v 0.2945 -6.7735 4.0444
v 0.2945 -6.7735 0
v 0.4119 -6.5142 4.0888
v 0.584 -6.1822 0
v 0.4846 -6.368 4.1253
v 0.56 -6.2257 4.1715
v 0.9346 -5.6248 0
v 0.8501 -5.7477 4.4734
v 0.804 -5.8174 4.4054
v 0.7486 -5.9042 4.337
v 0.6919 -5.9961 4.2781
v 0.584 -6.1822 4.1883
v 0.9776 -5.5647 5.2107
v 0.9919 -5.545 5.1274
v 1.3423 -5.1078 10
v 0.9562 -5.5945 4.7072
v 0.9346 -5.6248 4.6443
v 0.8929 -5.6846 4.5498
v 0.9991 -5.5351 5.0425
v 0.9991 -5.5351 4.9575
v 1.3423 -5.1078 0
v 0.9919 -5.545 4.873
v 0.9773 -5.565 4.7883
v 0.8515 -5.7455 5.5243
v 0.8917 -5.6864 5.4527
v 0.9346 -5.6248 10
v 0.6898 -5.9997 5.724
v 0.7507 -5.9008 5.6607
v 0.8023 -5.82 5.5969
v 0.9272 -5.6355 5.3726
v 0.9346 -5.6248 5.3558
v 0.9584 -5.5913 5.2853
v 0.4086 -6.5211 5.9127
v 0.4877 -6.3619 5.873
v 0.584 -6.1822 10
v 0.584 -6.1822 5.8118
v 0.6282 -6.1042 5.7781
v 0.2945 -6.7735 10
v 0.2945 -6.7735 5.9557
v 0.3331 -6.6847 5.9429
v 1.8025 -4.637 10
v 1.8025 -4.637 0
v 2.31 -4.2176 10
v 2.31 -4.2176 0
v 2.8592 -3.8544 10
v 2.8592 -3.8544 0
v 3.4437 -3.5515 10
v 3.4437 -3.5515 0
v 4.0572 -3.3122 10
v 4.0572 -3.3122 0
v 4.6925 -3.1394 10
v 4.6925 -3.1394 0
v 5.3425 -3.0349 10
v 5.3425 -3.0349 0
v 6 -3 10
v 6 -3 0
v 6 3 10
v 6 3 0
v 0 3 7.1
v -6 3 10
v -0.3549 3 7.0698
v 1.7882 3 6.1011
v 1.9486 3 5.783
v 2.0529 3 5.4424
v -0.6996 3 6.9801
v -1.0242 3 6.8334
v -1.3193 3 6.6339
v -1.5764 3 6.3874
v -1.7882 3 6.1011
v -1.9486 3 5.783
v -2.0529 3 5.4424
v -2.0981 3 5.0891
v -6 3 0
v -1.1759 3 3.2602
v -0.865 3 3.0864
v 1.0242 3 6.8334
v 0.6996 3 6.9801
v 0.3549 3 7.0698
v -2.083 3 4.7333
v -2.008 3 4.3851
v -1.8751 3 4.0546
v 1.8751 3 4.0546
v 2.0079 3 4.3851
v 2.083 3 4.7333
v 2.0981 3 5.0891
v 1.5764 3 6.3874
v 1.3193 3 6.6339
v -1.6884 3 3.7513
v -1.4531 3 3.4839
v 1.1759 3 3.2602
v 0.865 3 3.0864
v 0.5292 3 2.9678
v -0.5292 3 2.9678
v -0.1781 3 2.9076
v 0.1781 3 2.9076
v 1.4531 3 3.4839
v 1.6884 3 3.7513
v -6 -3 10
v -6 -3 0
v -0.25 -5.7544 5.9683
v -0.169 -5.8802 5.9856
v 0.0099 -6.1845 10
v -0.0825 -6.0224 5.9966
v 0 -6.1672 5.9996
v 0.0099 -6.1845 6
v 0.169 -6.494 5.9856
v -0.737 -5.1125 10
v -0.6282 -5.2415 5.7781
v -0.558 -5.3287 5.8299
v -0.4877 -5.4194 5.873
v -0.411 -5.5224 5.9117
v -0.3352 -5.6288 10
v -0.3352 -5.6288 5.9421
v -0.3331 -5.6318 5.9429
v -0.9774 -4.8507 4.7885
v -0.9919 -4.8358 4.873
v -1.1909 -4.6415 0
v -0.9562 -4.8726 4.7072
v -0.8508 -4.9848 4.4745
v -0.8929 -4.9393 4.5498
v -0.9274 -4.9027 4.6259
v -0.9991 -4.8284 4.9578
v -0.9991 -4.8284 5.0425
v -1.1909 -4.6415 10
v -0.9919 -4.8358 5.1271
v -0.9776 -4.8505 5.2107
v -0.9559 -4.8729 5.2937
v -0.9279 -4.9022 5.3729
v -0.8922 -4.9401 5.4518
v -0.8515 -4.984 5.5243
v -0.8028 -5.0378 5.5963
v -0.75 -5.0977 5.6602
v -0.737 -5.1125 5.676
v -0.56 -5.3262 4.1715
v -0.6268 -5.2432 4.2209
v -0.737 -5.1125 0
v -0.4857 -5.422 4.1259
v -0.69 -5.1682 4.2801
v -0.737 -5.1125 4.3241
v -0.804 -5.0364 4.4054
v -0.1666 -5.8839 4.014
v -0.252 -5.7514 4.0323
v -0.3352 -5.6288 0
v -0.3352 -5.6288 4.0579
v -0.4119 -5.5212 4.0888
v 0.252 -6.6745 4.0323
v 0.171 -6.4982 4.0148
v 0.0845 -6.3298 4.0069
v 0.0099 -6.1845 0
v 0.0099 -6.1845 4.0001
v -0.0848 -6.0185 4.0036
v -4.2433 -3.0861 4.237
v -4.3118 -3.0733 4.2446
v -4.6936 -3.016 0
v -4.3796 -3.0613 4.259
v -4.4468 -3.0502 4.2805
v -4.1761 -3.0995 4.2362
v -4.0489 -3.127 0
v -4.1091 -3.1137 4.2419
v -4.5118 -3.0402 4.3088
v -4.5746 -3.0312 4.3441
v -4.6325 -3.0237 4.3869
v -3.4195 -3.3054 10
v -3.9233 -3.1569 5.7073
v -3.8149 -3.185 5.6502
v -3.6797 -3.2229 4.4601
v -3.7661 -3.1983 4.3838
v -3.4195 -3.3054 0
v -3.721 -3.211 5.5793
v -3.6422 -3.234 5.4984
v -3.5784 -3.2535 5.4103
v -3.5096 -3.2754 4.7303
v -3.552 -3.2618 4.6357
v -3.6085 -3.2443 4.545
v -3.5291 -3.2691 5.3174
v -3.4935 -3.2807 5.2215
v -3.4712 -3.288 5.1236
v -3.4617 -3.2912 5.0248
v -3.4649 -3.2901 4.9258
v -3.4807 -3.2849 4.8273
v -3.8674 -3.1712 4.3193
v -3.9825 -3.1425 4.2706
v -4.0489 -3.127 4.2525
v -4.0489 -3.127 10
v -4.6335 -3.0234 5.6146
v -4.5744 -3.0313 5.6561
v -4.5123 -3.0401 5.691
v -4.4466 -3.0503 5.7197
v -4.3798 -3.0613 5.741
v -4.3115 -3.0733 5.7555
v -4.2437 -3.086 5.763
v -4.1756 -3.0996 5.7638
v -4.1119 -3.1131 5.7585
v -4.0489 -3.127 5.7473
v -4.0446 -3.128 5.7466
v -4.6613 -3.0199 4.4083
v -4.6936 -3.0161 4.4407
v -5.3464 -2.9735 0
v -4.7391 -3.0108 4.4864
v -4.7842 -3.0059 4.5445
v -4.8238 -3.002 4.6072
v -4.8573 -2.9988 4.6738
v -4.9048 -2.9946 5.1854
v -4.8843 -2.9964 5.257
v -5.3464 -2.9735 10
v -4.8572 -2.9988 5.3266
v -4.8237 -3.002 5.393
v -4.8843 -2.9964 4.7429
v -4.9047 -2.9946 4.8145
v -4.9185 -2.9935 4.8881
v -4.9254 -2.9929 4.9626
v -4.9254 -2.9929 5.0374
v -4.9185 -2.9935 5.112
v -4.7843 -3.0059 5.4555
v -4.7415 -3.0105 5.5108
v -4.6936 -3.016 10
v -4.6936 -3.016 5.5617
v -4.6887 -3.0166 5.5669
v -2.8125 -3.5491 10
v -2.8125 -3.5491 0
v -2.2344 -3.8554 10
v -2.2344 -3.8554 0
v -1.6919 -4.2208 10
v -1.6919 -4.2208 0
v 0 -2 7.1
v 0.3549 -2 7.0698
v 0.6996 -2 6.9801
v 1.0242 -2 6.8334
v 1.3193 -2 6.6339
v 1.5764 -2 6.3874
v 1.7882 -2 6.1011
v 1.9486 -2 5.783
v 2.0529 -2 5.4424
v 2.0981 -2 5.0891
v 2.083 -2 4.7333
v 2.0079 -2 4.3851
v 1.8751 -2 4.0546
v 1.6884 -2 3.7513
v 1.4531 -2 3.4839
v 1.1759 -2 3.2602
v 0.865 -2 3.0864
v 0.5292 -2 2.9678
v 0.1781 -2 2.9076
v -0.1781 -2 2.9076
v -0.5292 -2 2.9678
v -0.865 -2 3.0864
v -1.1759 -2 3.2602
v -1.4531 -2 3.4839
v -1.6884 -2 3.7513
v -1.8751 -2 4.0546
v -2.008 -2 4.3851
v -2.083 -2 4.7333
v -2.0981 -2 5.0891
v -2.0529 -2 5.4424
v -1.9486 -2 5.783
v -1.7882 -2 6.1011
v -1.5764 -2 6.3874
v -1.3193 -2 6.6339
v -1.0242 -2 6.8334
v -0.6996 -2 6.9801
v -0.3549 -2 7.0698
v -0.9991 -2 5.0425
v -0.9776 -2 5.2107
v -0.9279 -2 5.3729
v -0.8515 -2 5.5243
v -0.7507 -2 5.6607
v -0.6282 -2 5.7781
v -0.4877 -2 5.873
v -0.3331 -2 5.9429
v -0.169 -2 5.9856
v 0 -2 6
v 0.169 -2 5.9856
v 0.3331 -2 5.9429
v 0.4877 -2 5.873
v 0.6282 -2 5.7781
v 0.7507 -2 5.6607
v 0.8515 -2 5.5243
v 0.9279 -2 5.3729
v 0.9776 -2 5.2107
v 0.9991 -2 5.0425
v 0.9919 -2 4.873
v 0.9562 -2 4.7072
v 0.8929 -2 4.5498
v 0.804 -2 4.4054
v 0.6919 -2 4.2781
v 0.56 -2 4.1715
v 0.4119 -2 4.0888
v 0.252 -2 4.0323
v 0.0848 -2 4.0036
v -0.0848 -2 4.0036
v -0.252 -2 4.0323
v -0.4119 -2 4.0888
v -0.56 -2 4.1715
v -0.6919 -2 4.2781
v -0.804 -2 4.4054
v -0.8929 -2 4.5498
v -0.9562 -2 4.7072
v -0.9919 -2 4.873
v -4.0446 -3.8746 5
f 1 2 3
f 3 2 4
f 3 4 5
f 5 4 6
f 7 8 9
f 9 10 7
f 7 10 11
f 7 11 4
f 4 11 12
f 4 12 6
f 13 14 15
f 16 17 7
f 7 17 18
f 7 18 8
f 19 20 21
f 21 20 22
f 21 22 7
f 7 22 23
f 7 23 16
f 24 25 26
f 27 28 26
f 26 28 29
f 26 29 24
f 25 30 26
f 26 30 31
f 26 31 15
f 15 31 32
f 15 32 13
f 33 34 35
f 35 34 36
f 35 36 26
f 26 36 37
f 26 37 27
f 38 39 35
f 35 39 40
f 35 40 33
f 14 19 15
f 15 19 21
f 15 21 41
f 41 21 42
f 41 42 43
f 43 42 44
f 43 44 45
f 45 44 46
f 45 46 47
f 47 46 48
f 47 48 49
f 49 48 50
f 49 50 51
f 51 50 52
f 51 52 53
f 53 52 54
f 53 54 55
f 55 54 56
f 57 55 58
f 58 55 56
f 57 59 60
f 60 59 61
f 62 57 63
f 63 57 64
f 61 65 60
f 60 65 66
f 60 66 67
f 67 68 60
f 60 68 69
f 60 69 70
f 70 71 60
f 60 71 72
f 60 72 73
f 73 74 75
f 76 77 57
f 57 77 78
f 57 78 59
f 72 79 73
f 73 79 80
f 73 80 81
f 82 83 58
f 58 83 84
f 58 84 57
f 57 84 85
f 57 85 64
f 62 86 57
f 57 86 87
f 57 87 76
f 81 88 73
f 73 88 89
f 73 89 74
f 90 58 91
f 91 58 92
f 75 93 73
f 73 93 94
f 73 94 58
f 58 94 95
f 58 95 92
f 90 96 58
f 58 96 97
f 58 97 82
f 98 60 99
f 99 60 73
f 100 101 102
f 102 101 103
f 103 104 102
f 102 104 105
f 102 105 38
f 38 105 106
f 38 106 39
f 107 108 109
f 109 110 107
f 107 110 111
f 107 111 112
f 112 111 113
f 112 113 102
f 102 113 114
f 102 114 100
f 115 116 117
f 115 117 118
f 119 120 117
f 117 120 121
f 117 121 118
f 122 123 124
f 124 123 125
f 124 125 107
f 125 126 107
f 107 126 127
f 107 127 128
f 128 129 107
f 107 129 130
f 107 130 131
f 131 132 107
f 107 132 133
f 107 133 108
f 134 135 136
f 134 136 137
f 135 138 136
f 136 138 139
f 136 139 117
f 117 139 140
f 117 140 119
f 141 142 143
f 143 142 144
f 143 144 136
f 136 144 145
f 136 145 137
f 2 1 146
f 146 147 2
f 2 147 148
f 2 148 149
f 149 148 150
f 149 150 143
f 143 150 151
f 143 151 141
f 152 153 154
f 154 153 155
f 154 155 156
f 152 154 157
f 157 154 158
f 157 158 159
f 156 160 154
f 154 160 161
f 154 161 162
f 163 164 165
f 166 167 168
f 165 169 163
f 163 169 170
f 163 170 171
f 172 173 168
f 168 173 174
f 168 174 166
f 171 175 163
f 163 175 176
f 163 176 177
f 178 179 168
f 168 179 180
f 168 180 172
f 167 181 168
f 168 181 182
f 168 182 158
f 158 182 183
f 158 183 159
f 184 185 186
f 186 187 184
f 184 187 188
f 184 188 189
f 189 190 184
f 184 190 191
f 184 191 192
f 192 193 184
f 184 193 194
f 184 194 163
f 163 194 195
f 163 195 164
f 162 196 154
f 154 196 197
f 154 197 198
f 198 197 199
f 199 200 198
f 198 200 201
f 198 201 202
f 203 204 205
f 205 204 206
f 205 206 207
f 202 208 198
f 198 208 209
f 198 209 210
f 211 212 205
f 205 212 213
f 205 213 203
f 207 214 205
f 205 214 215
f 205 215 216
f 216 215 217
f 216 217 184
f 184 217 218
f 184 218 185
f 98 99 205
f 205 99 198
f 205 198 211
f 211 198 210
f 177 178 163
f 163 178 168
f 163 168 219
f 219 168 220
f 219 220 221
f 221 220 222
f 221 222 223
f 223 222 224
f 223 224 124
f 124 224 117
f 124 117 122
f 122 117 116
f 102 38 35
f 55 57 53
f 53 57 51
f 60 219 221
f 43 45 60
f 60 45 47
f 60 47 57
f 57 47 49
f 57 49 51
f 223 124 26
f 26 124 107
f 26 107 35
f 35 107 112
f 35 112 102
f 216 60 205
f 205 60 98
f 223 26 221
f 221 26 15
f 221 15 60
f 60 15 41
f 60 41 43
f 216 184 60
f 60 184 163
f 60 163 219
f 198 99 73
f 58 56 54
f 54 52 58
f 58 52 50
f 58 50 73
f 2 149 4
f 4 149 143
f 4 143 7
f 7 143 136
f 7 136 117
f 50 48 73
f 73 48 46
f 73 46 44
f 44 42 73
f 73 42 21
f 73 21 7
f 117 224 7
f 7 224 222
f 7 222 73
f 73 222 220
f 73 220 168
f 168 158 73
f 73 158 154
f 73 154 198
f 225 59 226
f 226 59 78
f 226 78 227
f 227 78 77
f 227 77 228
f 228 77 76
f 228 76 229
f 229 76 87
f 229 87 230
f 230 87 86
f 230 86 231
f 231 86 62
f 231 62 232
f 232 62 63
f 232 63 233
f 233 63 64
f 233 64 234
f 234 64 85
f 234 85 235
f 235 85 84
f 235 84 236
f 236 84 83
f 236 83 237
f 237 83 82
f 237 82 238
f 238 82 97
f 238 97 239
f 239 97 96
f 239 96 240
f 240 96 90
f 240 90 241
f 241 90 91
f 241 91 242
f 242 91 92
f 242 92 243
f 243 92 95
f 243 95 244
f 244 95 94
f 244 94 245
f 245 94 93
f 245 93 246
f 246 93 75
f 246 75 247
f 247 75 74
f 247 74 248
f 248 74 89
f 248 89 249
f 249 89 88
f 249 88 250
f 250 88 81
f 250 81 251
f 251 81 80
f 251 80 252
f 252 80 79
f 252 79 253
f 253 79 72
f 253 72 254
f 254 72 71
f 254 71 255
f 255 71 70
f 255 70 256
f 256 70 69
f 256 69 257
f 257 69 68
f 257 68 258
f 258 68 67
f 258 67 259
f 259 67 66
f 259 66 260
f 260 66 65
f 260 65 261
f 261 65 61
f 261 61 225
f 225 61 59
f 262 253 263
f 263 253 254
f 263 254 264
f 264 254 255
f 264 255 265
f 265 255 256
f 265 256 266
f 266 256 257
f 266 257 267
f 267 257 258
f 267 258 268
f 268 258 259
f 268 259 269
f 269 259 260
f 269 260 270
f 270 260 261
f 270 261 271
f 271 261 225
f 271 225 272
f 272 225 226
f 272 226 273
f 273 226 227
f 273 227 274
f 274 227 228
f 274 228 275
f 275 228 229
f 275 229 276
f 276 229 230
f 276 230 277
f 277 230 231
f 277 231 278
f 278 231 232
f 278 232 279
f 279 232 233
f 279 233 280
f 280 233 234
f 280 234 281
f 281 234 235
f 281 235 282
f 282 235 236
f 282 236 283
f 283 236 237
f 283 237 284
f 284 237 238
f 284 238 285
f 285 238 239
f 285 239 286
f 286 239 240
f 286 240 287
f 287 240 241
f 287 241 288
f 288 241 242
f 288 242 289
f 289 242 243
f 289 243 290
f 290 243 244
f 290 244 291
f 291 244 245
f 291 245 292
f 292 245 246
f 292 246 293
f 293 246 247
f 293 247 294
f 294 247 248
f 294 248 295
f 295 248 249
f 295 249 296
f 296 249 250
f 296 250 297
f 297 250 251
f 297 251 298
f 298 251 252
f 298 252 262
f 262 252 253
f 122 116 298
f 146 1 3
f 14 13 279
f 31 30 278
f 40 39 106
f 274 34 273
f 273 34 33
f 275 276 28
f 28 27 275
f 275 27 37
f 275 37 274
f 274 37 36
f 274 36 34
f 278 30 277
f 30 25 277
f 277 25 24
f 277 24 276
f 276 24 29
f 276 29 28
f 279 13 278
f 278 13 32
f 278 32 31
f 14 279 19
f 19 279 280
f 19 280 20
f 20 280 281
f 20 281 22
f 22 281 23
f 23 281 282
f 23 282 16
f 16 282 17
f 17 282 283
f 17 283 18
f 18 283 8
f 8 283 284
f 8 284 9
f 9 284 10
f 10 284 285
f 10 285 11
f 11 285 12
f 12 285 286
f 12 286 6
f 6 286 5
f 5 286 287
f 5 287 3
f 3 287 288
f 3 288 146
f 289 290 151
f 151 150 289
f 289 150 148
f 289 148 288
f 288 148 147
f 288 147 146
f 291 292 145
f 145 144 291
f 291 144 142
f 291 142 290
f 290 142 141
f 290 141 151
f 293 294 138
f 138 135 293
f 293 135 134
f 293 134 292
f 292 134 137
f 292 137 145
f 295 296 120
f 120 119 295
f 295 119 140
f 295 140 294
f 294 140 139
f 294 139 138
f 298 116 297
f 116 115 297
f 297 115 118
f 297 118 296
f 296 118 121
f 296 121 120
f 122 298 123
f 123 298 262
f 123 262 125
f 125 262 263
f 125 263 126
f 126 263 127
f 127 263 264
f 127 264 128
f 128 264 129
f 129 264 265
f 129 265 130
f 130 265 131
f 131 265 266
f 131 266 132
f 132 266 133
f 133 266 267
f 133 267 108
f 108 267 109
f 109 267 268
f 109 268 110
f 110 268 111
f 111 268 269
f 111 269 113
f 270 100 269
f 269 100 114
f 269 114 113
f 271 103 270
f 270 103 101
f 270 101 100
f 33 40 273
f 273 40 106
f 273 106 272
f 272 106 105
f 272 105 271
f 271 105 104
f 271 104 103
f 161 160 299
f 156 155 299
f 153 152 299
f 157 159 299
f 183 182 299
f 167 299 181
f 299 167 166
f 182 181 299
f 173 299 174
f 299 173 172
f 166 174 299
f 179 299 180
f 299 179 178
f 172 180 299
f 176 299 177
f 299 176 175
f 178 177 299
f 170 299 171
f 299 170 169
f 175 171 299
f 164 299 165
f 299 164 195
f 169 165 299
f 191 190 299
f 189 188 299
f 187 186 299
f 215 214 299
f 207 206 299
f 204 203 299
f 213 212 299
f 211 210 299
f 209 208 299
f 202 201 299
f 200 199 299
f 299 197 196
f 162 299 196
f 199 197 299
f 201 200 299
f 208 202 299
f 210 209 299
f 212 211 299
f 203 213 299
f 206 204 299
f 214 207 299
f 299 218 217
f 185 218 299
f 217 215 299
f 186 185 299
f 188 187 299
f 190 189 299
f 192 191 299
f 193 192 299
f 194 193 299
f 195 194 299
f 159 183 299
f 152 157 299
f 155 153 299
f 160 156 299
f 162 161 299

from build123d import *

# Parameters (mm, degrees)
BOSS_EXTRUDE1_DEPTH = 10
SKETCH2_R           = 2.1
CUT_EXTRUDE1_DEPTH  = 5
SKETCH3_R           = 1
CUT_EXTRUDE2_DEPTH  = 13.68857754


with BuildPart() as part:
    # Sketch1 → Boss-Extrude1 (new body)
    with BuildSketch(Plane.XY):
        with BuildLine():
            Line((-6, 3), (6, 3))
            Line((6, 3), (6, -3))
            ThreePointArc((6, -3), (2.579770149, -4.028730546), (0.29453866, -6.77353943))
            ThreePointArc((0.29453866, -6.77353943), (-2.234422316, -3.85538634), (-6, -3))
            Line((-6, -3), (-6, 3))
        make_face()
    extrude(amount=BOSS_EXTRUDE1_DEPTH)

    # Sketch2 → Cut-Extrude1 (cut)
    with BuildSketch(Plane(origin=(0, 3, 0), x_dir=(1, 0, 0), z_dir=(0, 1, 0))):
        with Locations(Location((0, -5, 0), (0, 0, 270))):
            Circle(SKETCH2_R)
    extrude(amount=-CUT_EXTRUDE1_DEPTH, mode=Mode.SUBTRACT)

    # Sketch3 → Cut-Extrude2 (cut, through all)
    with BuildSketch(Plane(origin=(0, -2, 0), x_dir=(1, 0, 0), z_dir=(0, 1, 0))):
        with Locations(Location((0, -5, 0), (0, 0, 270))):
            Circle(SKETCH3_R)
    extrude(amount=-CUT_EXTRUDE2_DEPTH, mode=Mode.SUBTRACT)

    # Boss-Extrude2 cone 1 section (through the dimple's axis) → Boss-Extrude2 (revolve)
    with BuildSketch(Plane(origin=(-4.04459479, -2.85, 5), x_dir=(0, 0, 1), z_dir=(1, 0, 0))):
        Polygon((0, 0), (1.024588898, 0), (0, 1.024588898), align=None)
    revolve(axis=Axis((-4.04459479, -2.85, 5), (0, -1, 0)))


solid = part.part
